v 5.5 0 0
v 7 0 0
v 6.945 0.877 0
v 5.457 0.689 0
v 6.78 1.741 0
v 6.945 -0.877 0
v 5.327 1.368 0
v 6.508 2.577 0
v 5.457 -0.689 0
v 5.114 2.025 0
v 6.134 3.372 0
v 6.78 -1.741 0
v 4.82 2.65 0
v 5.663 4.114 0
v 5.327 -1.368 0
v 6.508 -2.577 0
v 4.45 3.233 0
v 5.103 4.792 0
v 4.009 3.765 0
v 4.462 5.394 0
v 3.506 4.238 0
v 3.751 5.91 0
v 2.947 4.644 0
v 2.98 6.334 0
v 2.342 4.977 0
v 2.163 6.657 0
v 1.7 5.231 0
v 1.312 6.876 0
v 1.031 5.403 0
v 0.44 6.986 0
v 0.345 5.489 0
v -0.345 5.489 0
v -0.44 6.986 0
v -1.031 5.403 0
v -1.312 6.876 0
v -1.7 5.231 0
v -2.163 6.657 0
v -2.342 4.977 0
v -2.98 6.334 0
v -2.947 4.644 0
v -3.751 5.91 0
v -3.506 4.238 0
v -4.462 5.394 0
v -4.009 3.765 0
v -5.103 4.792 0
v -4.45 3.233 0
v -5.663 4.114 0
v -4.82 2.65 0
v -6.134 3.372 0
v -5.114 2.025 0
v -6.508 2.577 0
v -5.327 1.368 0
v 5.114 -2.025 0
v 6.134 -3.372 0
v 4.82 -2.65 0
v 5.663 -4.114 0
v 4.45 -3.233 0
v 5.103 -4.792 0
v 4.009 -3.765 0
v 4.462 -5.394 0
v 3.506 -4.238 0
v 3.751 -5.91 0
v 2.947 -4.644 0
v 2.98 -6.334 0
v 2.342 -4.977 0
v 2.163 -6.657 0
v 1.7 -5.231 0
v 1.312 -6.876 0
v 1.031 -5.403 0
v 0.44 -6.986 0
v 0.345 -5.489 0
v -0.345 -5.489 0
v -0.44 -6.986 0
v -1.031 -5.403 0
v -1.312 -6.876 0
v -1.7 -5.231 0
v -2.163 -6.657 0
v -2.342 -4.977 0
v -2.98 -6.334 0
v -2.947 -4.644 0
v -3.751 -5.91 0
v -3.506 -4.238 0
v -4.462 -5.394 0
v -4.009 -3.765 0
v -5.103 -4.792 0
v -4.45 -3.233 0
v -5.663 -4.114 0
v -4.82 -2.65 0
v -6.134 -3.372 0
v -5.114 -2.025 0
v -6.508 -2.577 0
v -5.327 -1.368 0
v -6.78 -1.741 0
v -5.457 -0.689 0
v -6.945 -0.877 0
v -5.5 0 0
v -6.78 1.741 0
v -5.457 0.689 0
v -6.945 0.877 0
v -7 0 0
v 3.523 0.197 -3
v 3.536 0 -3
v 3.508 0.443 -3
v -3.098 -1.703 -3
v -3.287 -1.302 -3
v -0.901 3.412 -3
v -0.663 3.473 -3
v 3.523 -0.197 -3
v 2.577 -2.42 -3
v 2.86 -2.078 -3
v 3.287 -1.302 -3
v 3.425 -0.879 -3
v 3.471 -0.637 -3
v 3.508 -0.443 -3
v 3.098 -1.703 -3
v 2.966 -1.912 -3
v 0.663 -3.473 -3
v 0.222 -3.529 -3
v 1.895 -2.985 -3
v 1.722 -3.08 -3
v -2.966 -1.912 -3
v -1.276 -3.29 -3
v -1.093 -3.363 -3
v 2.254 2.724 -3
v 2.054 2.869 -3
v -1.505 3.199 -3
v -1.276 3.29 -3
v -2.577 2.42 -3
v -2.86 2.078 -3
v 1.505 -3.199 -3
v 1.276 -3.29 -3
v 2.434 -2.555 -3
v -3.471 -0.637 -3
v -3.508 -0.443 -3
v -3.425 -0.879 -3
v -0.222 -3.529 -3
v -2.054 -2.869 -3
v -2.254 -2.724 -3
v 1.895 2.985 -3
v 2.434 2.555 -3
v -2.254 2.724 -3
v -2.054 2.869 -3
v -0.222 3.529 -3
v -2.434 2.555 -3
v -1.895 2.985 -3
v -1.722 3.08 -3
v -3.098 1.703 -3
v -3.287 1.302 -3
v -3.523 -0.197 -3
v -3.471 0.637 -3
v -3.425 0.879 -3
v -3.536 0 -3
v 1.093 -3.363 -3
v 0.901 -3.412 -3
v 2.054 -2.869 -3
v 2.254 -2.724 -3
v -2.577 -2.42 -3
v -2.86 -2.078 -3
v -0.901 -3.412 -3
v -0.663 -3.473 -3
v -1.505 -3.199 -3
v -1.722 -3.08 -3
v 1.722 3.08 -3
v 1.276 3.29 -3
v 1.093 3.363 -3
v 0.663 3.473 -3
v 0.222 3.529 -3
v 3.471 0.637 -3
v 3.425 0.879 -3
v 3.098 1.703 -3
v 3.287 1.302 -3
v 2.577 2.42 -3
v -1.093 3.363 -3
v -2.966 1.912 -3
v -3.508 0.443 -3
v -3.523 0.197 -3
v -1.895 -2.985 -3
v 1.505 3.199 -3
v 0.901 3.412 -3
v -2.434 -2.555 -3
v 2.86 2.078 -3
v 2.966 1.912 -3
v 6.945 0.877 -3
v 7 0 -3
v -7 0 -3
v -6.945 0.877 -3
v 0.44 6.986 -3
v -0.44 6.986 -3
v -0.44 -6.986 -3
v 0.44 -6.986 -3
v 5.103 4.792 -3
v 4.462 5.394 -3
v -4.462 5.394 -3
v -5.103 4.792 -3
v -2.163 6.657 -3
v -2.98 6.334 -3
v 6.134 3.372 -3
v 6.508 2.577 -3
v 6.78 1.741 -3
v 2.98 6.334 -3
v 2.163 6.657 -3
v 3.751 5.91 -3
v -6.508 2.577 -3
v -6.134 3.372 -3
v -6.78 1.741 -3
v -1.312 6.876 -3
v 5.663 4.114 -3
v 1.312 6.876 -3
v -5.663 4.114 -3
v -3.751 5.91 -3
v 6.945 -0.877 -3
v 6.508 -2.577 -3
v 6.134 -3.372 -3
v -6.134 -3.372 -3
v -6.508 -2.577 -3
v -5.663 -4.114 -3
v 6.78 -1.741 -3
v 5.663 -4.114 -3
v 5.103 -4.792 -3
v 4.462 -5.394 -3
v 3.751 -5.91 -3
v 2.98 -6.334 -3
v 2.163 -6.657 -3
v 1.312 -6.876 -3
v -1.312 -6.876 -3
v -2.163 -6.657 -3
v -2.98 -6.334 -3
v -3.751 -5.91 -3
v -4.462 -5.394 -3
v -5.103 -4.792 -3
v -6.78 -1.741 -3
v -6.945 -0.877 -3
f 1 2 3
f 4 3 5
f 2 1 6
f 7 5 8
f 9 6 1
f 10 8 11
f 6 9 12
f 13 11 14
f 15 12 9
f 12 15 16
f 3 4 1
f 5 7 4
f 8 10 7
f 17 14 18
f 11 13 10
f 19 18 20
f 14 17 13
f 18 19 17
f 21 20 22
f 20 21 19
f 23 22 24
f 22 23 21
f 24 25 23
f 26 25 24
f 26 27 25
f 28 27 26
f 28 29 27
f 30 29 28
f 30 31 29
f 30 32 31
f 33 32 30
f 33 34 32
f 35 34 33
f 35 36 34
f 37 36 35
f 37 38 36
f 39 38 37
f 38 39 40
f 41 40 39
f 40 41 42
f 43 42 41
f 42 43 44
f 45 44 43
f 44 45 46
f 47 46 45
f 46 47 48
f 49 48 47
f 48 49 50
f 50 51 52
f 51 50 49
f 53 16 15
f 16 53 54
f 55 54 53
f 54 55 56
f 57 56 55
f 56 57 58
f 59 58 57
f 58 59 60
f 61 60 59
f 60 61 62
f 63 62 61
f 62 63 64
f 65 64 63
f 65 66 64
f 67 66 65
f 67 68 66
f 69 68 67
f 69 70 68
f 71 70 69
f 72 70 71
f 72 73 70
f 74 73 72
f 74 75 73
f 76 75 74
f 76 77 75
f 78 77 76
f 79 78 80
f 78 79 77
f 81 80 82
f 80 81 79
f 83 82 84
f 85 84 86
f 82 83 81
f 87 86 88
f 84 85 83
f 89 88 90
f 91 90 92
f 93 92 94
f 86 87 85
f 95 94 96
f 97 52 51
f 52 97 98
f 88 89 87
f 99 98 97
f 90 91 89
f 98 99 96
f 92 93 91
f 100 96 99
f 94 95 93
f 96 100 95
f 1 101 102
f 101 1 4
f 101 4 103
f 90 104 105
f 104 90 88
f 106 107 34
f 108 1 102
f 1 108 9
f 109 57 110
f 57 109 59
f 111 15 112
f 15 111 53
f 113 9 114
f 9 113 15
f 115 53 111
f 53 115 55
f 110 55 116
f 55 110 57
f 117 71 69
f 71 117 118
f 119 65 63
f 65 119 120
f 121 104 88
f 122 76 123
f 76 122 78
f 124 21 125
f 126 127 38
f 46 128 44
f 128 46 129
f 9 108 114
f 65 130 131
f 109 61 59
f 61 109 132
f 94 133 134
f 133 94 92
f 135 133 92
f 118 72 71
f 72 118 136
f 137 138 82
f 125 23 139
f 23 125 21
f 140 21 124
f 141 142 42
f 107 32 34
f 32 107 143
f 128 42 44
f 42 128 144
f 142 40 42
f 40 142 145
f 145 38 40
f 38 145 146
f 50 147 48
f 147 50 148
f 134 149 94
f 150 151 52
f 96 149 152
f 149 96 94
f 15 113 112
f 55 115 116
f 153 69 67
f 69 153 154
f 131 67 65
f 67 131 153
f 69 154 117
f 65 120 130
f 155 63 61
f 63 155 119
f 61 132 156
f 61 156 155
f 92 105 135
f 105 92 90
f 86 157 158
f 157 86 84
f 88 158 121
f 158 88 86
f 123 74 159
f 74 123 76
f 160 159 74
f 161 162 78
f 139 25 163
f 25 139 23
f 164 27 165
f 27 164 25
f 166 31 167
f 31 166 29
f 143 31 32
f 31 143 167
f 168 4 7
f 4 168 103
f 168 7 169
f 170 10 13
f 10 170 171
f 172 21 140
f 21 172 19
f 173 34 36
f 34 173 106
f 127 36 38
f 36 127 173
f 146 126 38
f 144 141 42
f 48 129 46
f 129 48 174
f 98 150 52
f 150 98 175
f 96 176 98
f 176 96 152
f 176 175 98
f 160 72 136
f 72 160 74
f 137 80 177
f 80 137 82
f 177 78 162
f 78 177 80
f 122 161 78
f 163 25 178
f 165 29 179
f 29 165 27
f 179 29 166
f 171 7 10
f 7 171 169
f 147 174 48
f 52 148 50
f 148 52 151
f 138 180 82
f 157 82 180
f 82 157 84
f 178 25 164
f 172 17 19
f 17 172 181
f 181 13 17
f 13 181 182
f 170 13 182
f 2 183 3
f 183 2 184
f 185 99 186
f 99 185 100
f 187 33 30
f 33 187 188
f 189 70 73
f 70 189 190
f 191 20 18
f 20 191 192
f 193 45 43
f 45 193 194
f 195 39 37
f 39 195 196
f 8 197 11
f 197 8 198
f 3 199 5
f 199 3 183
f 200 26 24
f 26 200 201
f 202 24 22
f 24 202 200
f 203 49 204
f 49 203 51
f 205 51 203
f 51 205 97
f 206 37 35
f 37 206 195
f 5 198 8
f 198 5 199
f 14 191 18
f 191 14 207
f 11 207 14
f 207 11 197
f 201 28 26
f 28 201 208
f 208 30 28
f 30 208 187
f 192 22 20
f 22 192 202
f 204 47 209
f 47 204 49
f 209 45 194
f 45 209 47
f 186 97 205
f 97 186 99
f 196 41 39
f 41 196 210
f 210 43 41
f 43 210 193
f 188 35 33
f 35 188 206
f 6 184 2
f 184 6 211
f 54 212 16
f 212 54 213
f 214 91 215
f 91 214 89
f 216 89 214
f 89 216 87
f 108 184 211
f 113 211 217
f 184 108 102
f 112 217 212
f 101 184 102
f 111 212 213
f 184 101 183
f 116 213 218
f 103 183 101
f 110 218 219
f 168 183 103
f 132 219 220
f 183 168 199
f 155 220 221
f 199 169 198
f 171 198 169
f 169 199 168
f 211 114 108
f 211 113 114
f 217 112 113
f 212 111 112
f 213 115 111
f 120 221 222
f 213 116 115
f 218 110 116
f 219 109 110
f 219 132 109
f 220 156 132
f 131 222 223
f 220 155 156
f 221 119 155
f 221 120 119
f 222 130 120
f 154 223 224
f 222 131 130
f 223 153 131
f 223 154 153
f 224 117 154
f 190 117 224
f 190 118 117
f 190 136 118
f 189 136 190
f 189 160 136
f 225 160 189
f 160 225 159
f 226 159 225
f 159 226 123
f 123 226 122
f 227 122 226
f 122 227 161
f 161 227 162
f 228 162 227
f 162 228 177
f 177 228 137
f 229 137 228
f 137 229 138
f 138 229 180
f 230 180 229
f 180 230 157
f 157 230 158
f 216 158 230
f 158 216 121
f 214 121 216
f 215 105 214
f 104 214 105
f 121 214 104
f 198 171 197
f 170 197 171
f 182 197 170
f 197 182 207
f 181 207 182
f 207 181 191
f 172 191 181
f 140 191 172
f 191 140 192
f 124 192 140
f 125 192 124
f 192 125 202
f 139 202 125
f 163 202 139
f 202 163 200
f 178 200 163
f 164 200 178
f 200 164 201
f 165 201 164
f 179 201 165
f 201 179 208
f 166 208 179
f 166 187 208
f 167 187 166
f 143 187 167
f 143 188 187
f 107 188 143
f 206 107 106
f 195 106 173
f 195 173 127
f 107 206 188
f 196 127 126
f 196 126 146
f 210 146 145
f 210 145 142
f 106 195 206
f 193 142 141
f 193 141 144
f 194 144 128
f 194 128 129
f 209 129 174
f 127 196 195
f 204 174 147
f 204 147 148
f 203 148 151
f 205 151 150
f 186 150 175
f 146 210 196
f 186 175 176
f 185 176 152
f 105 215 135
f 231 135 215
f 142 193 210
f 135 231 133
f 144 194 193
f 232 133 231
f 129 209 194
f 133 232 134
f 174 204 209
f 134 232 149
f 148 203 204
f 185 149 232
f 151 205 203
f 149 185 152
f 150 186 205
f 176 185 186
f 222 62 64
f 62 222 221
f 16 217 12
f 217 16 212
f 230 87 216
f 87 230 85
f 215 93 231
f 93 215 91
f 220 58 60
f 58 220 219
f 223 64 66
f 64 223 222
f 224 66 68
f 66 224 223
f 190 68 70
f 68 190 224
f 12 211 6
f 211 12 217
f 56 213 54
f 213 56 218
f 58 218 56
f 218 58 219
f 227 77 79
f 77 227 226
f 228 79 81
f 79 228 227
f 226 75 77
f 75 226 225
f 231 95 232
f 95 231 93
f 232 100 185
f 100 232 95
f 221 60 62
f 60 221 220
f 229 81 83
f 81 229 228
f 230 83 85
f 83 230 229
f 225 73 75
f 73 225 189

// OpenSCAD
$fn = 50;

difference() {
	union() {
		translate(v = [0, 0, -3.0]) {
			cylinder(h = 3, r = 7.0);
		}
	}
	union() {
		translate(v = [0, 0, 0]) {
			rotate(a = [0, 0, 0]) {
				difference() {
					union() {
						translate(v = [0, 0, -6.0]) {
							cylinder(h = 6, r = 2.25);
						}
						translate(v = [0, 0, -4.2]) {
							cylinder(h = 4.2, r1 = 2.75, r2 = 5.5);
						}
						translate(v = [0, 0, -6.0]) {
							cylinder(h = 6, r = 2.75);
						}
						translate(v = [0, 0, -6.0]) {
							cylinder(h = 6, r = 2.25);
						}
					}
					union();
				}
			}
		}
	}
}
